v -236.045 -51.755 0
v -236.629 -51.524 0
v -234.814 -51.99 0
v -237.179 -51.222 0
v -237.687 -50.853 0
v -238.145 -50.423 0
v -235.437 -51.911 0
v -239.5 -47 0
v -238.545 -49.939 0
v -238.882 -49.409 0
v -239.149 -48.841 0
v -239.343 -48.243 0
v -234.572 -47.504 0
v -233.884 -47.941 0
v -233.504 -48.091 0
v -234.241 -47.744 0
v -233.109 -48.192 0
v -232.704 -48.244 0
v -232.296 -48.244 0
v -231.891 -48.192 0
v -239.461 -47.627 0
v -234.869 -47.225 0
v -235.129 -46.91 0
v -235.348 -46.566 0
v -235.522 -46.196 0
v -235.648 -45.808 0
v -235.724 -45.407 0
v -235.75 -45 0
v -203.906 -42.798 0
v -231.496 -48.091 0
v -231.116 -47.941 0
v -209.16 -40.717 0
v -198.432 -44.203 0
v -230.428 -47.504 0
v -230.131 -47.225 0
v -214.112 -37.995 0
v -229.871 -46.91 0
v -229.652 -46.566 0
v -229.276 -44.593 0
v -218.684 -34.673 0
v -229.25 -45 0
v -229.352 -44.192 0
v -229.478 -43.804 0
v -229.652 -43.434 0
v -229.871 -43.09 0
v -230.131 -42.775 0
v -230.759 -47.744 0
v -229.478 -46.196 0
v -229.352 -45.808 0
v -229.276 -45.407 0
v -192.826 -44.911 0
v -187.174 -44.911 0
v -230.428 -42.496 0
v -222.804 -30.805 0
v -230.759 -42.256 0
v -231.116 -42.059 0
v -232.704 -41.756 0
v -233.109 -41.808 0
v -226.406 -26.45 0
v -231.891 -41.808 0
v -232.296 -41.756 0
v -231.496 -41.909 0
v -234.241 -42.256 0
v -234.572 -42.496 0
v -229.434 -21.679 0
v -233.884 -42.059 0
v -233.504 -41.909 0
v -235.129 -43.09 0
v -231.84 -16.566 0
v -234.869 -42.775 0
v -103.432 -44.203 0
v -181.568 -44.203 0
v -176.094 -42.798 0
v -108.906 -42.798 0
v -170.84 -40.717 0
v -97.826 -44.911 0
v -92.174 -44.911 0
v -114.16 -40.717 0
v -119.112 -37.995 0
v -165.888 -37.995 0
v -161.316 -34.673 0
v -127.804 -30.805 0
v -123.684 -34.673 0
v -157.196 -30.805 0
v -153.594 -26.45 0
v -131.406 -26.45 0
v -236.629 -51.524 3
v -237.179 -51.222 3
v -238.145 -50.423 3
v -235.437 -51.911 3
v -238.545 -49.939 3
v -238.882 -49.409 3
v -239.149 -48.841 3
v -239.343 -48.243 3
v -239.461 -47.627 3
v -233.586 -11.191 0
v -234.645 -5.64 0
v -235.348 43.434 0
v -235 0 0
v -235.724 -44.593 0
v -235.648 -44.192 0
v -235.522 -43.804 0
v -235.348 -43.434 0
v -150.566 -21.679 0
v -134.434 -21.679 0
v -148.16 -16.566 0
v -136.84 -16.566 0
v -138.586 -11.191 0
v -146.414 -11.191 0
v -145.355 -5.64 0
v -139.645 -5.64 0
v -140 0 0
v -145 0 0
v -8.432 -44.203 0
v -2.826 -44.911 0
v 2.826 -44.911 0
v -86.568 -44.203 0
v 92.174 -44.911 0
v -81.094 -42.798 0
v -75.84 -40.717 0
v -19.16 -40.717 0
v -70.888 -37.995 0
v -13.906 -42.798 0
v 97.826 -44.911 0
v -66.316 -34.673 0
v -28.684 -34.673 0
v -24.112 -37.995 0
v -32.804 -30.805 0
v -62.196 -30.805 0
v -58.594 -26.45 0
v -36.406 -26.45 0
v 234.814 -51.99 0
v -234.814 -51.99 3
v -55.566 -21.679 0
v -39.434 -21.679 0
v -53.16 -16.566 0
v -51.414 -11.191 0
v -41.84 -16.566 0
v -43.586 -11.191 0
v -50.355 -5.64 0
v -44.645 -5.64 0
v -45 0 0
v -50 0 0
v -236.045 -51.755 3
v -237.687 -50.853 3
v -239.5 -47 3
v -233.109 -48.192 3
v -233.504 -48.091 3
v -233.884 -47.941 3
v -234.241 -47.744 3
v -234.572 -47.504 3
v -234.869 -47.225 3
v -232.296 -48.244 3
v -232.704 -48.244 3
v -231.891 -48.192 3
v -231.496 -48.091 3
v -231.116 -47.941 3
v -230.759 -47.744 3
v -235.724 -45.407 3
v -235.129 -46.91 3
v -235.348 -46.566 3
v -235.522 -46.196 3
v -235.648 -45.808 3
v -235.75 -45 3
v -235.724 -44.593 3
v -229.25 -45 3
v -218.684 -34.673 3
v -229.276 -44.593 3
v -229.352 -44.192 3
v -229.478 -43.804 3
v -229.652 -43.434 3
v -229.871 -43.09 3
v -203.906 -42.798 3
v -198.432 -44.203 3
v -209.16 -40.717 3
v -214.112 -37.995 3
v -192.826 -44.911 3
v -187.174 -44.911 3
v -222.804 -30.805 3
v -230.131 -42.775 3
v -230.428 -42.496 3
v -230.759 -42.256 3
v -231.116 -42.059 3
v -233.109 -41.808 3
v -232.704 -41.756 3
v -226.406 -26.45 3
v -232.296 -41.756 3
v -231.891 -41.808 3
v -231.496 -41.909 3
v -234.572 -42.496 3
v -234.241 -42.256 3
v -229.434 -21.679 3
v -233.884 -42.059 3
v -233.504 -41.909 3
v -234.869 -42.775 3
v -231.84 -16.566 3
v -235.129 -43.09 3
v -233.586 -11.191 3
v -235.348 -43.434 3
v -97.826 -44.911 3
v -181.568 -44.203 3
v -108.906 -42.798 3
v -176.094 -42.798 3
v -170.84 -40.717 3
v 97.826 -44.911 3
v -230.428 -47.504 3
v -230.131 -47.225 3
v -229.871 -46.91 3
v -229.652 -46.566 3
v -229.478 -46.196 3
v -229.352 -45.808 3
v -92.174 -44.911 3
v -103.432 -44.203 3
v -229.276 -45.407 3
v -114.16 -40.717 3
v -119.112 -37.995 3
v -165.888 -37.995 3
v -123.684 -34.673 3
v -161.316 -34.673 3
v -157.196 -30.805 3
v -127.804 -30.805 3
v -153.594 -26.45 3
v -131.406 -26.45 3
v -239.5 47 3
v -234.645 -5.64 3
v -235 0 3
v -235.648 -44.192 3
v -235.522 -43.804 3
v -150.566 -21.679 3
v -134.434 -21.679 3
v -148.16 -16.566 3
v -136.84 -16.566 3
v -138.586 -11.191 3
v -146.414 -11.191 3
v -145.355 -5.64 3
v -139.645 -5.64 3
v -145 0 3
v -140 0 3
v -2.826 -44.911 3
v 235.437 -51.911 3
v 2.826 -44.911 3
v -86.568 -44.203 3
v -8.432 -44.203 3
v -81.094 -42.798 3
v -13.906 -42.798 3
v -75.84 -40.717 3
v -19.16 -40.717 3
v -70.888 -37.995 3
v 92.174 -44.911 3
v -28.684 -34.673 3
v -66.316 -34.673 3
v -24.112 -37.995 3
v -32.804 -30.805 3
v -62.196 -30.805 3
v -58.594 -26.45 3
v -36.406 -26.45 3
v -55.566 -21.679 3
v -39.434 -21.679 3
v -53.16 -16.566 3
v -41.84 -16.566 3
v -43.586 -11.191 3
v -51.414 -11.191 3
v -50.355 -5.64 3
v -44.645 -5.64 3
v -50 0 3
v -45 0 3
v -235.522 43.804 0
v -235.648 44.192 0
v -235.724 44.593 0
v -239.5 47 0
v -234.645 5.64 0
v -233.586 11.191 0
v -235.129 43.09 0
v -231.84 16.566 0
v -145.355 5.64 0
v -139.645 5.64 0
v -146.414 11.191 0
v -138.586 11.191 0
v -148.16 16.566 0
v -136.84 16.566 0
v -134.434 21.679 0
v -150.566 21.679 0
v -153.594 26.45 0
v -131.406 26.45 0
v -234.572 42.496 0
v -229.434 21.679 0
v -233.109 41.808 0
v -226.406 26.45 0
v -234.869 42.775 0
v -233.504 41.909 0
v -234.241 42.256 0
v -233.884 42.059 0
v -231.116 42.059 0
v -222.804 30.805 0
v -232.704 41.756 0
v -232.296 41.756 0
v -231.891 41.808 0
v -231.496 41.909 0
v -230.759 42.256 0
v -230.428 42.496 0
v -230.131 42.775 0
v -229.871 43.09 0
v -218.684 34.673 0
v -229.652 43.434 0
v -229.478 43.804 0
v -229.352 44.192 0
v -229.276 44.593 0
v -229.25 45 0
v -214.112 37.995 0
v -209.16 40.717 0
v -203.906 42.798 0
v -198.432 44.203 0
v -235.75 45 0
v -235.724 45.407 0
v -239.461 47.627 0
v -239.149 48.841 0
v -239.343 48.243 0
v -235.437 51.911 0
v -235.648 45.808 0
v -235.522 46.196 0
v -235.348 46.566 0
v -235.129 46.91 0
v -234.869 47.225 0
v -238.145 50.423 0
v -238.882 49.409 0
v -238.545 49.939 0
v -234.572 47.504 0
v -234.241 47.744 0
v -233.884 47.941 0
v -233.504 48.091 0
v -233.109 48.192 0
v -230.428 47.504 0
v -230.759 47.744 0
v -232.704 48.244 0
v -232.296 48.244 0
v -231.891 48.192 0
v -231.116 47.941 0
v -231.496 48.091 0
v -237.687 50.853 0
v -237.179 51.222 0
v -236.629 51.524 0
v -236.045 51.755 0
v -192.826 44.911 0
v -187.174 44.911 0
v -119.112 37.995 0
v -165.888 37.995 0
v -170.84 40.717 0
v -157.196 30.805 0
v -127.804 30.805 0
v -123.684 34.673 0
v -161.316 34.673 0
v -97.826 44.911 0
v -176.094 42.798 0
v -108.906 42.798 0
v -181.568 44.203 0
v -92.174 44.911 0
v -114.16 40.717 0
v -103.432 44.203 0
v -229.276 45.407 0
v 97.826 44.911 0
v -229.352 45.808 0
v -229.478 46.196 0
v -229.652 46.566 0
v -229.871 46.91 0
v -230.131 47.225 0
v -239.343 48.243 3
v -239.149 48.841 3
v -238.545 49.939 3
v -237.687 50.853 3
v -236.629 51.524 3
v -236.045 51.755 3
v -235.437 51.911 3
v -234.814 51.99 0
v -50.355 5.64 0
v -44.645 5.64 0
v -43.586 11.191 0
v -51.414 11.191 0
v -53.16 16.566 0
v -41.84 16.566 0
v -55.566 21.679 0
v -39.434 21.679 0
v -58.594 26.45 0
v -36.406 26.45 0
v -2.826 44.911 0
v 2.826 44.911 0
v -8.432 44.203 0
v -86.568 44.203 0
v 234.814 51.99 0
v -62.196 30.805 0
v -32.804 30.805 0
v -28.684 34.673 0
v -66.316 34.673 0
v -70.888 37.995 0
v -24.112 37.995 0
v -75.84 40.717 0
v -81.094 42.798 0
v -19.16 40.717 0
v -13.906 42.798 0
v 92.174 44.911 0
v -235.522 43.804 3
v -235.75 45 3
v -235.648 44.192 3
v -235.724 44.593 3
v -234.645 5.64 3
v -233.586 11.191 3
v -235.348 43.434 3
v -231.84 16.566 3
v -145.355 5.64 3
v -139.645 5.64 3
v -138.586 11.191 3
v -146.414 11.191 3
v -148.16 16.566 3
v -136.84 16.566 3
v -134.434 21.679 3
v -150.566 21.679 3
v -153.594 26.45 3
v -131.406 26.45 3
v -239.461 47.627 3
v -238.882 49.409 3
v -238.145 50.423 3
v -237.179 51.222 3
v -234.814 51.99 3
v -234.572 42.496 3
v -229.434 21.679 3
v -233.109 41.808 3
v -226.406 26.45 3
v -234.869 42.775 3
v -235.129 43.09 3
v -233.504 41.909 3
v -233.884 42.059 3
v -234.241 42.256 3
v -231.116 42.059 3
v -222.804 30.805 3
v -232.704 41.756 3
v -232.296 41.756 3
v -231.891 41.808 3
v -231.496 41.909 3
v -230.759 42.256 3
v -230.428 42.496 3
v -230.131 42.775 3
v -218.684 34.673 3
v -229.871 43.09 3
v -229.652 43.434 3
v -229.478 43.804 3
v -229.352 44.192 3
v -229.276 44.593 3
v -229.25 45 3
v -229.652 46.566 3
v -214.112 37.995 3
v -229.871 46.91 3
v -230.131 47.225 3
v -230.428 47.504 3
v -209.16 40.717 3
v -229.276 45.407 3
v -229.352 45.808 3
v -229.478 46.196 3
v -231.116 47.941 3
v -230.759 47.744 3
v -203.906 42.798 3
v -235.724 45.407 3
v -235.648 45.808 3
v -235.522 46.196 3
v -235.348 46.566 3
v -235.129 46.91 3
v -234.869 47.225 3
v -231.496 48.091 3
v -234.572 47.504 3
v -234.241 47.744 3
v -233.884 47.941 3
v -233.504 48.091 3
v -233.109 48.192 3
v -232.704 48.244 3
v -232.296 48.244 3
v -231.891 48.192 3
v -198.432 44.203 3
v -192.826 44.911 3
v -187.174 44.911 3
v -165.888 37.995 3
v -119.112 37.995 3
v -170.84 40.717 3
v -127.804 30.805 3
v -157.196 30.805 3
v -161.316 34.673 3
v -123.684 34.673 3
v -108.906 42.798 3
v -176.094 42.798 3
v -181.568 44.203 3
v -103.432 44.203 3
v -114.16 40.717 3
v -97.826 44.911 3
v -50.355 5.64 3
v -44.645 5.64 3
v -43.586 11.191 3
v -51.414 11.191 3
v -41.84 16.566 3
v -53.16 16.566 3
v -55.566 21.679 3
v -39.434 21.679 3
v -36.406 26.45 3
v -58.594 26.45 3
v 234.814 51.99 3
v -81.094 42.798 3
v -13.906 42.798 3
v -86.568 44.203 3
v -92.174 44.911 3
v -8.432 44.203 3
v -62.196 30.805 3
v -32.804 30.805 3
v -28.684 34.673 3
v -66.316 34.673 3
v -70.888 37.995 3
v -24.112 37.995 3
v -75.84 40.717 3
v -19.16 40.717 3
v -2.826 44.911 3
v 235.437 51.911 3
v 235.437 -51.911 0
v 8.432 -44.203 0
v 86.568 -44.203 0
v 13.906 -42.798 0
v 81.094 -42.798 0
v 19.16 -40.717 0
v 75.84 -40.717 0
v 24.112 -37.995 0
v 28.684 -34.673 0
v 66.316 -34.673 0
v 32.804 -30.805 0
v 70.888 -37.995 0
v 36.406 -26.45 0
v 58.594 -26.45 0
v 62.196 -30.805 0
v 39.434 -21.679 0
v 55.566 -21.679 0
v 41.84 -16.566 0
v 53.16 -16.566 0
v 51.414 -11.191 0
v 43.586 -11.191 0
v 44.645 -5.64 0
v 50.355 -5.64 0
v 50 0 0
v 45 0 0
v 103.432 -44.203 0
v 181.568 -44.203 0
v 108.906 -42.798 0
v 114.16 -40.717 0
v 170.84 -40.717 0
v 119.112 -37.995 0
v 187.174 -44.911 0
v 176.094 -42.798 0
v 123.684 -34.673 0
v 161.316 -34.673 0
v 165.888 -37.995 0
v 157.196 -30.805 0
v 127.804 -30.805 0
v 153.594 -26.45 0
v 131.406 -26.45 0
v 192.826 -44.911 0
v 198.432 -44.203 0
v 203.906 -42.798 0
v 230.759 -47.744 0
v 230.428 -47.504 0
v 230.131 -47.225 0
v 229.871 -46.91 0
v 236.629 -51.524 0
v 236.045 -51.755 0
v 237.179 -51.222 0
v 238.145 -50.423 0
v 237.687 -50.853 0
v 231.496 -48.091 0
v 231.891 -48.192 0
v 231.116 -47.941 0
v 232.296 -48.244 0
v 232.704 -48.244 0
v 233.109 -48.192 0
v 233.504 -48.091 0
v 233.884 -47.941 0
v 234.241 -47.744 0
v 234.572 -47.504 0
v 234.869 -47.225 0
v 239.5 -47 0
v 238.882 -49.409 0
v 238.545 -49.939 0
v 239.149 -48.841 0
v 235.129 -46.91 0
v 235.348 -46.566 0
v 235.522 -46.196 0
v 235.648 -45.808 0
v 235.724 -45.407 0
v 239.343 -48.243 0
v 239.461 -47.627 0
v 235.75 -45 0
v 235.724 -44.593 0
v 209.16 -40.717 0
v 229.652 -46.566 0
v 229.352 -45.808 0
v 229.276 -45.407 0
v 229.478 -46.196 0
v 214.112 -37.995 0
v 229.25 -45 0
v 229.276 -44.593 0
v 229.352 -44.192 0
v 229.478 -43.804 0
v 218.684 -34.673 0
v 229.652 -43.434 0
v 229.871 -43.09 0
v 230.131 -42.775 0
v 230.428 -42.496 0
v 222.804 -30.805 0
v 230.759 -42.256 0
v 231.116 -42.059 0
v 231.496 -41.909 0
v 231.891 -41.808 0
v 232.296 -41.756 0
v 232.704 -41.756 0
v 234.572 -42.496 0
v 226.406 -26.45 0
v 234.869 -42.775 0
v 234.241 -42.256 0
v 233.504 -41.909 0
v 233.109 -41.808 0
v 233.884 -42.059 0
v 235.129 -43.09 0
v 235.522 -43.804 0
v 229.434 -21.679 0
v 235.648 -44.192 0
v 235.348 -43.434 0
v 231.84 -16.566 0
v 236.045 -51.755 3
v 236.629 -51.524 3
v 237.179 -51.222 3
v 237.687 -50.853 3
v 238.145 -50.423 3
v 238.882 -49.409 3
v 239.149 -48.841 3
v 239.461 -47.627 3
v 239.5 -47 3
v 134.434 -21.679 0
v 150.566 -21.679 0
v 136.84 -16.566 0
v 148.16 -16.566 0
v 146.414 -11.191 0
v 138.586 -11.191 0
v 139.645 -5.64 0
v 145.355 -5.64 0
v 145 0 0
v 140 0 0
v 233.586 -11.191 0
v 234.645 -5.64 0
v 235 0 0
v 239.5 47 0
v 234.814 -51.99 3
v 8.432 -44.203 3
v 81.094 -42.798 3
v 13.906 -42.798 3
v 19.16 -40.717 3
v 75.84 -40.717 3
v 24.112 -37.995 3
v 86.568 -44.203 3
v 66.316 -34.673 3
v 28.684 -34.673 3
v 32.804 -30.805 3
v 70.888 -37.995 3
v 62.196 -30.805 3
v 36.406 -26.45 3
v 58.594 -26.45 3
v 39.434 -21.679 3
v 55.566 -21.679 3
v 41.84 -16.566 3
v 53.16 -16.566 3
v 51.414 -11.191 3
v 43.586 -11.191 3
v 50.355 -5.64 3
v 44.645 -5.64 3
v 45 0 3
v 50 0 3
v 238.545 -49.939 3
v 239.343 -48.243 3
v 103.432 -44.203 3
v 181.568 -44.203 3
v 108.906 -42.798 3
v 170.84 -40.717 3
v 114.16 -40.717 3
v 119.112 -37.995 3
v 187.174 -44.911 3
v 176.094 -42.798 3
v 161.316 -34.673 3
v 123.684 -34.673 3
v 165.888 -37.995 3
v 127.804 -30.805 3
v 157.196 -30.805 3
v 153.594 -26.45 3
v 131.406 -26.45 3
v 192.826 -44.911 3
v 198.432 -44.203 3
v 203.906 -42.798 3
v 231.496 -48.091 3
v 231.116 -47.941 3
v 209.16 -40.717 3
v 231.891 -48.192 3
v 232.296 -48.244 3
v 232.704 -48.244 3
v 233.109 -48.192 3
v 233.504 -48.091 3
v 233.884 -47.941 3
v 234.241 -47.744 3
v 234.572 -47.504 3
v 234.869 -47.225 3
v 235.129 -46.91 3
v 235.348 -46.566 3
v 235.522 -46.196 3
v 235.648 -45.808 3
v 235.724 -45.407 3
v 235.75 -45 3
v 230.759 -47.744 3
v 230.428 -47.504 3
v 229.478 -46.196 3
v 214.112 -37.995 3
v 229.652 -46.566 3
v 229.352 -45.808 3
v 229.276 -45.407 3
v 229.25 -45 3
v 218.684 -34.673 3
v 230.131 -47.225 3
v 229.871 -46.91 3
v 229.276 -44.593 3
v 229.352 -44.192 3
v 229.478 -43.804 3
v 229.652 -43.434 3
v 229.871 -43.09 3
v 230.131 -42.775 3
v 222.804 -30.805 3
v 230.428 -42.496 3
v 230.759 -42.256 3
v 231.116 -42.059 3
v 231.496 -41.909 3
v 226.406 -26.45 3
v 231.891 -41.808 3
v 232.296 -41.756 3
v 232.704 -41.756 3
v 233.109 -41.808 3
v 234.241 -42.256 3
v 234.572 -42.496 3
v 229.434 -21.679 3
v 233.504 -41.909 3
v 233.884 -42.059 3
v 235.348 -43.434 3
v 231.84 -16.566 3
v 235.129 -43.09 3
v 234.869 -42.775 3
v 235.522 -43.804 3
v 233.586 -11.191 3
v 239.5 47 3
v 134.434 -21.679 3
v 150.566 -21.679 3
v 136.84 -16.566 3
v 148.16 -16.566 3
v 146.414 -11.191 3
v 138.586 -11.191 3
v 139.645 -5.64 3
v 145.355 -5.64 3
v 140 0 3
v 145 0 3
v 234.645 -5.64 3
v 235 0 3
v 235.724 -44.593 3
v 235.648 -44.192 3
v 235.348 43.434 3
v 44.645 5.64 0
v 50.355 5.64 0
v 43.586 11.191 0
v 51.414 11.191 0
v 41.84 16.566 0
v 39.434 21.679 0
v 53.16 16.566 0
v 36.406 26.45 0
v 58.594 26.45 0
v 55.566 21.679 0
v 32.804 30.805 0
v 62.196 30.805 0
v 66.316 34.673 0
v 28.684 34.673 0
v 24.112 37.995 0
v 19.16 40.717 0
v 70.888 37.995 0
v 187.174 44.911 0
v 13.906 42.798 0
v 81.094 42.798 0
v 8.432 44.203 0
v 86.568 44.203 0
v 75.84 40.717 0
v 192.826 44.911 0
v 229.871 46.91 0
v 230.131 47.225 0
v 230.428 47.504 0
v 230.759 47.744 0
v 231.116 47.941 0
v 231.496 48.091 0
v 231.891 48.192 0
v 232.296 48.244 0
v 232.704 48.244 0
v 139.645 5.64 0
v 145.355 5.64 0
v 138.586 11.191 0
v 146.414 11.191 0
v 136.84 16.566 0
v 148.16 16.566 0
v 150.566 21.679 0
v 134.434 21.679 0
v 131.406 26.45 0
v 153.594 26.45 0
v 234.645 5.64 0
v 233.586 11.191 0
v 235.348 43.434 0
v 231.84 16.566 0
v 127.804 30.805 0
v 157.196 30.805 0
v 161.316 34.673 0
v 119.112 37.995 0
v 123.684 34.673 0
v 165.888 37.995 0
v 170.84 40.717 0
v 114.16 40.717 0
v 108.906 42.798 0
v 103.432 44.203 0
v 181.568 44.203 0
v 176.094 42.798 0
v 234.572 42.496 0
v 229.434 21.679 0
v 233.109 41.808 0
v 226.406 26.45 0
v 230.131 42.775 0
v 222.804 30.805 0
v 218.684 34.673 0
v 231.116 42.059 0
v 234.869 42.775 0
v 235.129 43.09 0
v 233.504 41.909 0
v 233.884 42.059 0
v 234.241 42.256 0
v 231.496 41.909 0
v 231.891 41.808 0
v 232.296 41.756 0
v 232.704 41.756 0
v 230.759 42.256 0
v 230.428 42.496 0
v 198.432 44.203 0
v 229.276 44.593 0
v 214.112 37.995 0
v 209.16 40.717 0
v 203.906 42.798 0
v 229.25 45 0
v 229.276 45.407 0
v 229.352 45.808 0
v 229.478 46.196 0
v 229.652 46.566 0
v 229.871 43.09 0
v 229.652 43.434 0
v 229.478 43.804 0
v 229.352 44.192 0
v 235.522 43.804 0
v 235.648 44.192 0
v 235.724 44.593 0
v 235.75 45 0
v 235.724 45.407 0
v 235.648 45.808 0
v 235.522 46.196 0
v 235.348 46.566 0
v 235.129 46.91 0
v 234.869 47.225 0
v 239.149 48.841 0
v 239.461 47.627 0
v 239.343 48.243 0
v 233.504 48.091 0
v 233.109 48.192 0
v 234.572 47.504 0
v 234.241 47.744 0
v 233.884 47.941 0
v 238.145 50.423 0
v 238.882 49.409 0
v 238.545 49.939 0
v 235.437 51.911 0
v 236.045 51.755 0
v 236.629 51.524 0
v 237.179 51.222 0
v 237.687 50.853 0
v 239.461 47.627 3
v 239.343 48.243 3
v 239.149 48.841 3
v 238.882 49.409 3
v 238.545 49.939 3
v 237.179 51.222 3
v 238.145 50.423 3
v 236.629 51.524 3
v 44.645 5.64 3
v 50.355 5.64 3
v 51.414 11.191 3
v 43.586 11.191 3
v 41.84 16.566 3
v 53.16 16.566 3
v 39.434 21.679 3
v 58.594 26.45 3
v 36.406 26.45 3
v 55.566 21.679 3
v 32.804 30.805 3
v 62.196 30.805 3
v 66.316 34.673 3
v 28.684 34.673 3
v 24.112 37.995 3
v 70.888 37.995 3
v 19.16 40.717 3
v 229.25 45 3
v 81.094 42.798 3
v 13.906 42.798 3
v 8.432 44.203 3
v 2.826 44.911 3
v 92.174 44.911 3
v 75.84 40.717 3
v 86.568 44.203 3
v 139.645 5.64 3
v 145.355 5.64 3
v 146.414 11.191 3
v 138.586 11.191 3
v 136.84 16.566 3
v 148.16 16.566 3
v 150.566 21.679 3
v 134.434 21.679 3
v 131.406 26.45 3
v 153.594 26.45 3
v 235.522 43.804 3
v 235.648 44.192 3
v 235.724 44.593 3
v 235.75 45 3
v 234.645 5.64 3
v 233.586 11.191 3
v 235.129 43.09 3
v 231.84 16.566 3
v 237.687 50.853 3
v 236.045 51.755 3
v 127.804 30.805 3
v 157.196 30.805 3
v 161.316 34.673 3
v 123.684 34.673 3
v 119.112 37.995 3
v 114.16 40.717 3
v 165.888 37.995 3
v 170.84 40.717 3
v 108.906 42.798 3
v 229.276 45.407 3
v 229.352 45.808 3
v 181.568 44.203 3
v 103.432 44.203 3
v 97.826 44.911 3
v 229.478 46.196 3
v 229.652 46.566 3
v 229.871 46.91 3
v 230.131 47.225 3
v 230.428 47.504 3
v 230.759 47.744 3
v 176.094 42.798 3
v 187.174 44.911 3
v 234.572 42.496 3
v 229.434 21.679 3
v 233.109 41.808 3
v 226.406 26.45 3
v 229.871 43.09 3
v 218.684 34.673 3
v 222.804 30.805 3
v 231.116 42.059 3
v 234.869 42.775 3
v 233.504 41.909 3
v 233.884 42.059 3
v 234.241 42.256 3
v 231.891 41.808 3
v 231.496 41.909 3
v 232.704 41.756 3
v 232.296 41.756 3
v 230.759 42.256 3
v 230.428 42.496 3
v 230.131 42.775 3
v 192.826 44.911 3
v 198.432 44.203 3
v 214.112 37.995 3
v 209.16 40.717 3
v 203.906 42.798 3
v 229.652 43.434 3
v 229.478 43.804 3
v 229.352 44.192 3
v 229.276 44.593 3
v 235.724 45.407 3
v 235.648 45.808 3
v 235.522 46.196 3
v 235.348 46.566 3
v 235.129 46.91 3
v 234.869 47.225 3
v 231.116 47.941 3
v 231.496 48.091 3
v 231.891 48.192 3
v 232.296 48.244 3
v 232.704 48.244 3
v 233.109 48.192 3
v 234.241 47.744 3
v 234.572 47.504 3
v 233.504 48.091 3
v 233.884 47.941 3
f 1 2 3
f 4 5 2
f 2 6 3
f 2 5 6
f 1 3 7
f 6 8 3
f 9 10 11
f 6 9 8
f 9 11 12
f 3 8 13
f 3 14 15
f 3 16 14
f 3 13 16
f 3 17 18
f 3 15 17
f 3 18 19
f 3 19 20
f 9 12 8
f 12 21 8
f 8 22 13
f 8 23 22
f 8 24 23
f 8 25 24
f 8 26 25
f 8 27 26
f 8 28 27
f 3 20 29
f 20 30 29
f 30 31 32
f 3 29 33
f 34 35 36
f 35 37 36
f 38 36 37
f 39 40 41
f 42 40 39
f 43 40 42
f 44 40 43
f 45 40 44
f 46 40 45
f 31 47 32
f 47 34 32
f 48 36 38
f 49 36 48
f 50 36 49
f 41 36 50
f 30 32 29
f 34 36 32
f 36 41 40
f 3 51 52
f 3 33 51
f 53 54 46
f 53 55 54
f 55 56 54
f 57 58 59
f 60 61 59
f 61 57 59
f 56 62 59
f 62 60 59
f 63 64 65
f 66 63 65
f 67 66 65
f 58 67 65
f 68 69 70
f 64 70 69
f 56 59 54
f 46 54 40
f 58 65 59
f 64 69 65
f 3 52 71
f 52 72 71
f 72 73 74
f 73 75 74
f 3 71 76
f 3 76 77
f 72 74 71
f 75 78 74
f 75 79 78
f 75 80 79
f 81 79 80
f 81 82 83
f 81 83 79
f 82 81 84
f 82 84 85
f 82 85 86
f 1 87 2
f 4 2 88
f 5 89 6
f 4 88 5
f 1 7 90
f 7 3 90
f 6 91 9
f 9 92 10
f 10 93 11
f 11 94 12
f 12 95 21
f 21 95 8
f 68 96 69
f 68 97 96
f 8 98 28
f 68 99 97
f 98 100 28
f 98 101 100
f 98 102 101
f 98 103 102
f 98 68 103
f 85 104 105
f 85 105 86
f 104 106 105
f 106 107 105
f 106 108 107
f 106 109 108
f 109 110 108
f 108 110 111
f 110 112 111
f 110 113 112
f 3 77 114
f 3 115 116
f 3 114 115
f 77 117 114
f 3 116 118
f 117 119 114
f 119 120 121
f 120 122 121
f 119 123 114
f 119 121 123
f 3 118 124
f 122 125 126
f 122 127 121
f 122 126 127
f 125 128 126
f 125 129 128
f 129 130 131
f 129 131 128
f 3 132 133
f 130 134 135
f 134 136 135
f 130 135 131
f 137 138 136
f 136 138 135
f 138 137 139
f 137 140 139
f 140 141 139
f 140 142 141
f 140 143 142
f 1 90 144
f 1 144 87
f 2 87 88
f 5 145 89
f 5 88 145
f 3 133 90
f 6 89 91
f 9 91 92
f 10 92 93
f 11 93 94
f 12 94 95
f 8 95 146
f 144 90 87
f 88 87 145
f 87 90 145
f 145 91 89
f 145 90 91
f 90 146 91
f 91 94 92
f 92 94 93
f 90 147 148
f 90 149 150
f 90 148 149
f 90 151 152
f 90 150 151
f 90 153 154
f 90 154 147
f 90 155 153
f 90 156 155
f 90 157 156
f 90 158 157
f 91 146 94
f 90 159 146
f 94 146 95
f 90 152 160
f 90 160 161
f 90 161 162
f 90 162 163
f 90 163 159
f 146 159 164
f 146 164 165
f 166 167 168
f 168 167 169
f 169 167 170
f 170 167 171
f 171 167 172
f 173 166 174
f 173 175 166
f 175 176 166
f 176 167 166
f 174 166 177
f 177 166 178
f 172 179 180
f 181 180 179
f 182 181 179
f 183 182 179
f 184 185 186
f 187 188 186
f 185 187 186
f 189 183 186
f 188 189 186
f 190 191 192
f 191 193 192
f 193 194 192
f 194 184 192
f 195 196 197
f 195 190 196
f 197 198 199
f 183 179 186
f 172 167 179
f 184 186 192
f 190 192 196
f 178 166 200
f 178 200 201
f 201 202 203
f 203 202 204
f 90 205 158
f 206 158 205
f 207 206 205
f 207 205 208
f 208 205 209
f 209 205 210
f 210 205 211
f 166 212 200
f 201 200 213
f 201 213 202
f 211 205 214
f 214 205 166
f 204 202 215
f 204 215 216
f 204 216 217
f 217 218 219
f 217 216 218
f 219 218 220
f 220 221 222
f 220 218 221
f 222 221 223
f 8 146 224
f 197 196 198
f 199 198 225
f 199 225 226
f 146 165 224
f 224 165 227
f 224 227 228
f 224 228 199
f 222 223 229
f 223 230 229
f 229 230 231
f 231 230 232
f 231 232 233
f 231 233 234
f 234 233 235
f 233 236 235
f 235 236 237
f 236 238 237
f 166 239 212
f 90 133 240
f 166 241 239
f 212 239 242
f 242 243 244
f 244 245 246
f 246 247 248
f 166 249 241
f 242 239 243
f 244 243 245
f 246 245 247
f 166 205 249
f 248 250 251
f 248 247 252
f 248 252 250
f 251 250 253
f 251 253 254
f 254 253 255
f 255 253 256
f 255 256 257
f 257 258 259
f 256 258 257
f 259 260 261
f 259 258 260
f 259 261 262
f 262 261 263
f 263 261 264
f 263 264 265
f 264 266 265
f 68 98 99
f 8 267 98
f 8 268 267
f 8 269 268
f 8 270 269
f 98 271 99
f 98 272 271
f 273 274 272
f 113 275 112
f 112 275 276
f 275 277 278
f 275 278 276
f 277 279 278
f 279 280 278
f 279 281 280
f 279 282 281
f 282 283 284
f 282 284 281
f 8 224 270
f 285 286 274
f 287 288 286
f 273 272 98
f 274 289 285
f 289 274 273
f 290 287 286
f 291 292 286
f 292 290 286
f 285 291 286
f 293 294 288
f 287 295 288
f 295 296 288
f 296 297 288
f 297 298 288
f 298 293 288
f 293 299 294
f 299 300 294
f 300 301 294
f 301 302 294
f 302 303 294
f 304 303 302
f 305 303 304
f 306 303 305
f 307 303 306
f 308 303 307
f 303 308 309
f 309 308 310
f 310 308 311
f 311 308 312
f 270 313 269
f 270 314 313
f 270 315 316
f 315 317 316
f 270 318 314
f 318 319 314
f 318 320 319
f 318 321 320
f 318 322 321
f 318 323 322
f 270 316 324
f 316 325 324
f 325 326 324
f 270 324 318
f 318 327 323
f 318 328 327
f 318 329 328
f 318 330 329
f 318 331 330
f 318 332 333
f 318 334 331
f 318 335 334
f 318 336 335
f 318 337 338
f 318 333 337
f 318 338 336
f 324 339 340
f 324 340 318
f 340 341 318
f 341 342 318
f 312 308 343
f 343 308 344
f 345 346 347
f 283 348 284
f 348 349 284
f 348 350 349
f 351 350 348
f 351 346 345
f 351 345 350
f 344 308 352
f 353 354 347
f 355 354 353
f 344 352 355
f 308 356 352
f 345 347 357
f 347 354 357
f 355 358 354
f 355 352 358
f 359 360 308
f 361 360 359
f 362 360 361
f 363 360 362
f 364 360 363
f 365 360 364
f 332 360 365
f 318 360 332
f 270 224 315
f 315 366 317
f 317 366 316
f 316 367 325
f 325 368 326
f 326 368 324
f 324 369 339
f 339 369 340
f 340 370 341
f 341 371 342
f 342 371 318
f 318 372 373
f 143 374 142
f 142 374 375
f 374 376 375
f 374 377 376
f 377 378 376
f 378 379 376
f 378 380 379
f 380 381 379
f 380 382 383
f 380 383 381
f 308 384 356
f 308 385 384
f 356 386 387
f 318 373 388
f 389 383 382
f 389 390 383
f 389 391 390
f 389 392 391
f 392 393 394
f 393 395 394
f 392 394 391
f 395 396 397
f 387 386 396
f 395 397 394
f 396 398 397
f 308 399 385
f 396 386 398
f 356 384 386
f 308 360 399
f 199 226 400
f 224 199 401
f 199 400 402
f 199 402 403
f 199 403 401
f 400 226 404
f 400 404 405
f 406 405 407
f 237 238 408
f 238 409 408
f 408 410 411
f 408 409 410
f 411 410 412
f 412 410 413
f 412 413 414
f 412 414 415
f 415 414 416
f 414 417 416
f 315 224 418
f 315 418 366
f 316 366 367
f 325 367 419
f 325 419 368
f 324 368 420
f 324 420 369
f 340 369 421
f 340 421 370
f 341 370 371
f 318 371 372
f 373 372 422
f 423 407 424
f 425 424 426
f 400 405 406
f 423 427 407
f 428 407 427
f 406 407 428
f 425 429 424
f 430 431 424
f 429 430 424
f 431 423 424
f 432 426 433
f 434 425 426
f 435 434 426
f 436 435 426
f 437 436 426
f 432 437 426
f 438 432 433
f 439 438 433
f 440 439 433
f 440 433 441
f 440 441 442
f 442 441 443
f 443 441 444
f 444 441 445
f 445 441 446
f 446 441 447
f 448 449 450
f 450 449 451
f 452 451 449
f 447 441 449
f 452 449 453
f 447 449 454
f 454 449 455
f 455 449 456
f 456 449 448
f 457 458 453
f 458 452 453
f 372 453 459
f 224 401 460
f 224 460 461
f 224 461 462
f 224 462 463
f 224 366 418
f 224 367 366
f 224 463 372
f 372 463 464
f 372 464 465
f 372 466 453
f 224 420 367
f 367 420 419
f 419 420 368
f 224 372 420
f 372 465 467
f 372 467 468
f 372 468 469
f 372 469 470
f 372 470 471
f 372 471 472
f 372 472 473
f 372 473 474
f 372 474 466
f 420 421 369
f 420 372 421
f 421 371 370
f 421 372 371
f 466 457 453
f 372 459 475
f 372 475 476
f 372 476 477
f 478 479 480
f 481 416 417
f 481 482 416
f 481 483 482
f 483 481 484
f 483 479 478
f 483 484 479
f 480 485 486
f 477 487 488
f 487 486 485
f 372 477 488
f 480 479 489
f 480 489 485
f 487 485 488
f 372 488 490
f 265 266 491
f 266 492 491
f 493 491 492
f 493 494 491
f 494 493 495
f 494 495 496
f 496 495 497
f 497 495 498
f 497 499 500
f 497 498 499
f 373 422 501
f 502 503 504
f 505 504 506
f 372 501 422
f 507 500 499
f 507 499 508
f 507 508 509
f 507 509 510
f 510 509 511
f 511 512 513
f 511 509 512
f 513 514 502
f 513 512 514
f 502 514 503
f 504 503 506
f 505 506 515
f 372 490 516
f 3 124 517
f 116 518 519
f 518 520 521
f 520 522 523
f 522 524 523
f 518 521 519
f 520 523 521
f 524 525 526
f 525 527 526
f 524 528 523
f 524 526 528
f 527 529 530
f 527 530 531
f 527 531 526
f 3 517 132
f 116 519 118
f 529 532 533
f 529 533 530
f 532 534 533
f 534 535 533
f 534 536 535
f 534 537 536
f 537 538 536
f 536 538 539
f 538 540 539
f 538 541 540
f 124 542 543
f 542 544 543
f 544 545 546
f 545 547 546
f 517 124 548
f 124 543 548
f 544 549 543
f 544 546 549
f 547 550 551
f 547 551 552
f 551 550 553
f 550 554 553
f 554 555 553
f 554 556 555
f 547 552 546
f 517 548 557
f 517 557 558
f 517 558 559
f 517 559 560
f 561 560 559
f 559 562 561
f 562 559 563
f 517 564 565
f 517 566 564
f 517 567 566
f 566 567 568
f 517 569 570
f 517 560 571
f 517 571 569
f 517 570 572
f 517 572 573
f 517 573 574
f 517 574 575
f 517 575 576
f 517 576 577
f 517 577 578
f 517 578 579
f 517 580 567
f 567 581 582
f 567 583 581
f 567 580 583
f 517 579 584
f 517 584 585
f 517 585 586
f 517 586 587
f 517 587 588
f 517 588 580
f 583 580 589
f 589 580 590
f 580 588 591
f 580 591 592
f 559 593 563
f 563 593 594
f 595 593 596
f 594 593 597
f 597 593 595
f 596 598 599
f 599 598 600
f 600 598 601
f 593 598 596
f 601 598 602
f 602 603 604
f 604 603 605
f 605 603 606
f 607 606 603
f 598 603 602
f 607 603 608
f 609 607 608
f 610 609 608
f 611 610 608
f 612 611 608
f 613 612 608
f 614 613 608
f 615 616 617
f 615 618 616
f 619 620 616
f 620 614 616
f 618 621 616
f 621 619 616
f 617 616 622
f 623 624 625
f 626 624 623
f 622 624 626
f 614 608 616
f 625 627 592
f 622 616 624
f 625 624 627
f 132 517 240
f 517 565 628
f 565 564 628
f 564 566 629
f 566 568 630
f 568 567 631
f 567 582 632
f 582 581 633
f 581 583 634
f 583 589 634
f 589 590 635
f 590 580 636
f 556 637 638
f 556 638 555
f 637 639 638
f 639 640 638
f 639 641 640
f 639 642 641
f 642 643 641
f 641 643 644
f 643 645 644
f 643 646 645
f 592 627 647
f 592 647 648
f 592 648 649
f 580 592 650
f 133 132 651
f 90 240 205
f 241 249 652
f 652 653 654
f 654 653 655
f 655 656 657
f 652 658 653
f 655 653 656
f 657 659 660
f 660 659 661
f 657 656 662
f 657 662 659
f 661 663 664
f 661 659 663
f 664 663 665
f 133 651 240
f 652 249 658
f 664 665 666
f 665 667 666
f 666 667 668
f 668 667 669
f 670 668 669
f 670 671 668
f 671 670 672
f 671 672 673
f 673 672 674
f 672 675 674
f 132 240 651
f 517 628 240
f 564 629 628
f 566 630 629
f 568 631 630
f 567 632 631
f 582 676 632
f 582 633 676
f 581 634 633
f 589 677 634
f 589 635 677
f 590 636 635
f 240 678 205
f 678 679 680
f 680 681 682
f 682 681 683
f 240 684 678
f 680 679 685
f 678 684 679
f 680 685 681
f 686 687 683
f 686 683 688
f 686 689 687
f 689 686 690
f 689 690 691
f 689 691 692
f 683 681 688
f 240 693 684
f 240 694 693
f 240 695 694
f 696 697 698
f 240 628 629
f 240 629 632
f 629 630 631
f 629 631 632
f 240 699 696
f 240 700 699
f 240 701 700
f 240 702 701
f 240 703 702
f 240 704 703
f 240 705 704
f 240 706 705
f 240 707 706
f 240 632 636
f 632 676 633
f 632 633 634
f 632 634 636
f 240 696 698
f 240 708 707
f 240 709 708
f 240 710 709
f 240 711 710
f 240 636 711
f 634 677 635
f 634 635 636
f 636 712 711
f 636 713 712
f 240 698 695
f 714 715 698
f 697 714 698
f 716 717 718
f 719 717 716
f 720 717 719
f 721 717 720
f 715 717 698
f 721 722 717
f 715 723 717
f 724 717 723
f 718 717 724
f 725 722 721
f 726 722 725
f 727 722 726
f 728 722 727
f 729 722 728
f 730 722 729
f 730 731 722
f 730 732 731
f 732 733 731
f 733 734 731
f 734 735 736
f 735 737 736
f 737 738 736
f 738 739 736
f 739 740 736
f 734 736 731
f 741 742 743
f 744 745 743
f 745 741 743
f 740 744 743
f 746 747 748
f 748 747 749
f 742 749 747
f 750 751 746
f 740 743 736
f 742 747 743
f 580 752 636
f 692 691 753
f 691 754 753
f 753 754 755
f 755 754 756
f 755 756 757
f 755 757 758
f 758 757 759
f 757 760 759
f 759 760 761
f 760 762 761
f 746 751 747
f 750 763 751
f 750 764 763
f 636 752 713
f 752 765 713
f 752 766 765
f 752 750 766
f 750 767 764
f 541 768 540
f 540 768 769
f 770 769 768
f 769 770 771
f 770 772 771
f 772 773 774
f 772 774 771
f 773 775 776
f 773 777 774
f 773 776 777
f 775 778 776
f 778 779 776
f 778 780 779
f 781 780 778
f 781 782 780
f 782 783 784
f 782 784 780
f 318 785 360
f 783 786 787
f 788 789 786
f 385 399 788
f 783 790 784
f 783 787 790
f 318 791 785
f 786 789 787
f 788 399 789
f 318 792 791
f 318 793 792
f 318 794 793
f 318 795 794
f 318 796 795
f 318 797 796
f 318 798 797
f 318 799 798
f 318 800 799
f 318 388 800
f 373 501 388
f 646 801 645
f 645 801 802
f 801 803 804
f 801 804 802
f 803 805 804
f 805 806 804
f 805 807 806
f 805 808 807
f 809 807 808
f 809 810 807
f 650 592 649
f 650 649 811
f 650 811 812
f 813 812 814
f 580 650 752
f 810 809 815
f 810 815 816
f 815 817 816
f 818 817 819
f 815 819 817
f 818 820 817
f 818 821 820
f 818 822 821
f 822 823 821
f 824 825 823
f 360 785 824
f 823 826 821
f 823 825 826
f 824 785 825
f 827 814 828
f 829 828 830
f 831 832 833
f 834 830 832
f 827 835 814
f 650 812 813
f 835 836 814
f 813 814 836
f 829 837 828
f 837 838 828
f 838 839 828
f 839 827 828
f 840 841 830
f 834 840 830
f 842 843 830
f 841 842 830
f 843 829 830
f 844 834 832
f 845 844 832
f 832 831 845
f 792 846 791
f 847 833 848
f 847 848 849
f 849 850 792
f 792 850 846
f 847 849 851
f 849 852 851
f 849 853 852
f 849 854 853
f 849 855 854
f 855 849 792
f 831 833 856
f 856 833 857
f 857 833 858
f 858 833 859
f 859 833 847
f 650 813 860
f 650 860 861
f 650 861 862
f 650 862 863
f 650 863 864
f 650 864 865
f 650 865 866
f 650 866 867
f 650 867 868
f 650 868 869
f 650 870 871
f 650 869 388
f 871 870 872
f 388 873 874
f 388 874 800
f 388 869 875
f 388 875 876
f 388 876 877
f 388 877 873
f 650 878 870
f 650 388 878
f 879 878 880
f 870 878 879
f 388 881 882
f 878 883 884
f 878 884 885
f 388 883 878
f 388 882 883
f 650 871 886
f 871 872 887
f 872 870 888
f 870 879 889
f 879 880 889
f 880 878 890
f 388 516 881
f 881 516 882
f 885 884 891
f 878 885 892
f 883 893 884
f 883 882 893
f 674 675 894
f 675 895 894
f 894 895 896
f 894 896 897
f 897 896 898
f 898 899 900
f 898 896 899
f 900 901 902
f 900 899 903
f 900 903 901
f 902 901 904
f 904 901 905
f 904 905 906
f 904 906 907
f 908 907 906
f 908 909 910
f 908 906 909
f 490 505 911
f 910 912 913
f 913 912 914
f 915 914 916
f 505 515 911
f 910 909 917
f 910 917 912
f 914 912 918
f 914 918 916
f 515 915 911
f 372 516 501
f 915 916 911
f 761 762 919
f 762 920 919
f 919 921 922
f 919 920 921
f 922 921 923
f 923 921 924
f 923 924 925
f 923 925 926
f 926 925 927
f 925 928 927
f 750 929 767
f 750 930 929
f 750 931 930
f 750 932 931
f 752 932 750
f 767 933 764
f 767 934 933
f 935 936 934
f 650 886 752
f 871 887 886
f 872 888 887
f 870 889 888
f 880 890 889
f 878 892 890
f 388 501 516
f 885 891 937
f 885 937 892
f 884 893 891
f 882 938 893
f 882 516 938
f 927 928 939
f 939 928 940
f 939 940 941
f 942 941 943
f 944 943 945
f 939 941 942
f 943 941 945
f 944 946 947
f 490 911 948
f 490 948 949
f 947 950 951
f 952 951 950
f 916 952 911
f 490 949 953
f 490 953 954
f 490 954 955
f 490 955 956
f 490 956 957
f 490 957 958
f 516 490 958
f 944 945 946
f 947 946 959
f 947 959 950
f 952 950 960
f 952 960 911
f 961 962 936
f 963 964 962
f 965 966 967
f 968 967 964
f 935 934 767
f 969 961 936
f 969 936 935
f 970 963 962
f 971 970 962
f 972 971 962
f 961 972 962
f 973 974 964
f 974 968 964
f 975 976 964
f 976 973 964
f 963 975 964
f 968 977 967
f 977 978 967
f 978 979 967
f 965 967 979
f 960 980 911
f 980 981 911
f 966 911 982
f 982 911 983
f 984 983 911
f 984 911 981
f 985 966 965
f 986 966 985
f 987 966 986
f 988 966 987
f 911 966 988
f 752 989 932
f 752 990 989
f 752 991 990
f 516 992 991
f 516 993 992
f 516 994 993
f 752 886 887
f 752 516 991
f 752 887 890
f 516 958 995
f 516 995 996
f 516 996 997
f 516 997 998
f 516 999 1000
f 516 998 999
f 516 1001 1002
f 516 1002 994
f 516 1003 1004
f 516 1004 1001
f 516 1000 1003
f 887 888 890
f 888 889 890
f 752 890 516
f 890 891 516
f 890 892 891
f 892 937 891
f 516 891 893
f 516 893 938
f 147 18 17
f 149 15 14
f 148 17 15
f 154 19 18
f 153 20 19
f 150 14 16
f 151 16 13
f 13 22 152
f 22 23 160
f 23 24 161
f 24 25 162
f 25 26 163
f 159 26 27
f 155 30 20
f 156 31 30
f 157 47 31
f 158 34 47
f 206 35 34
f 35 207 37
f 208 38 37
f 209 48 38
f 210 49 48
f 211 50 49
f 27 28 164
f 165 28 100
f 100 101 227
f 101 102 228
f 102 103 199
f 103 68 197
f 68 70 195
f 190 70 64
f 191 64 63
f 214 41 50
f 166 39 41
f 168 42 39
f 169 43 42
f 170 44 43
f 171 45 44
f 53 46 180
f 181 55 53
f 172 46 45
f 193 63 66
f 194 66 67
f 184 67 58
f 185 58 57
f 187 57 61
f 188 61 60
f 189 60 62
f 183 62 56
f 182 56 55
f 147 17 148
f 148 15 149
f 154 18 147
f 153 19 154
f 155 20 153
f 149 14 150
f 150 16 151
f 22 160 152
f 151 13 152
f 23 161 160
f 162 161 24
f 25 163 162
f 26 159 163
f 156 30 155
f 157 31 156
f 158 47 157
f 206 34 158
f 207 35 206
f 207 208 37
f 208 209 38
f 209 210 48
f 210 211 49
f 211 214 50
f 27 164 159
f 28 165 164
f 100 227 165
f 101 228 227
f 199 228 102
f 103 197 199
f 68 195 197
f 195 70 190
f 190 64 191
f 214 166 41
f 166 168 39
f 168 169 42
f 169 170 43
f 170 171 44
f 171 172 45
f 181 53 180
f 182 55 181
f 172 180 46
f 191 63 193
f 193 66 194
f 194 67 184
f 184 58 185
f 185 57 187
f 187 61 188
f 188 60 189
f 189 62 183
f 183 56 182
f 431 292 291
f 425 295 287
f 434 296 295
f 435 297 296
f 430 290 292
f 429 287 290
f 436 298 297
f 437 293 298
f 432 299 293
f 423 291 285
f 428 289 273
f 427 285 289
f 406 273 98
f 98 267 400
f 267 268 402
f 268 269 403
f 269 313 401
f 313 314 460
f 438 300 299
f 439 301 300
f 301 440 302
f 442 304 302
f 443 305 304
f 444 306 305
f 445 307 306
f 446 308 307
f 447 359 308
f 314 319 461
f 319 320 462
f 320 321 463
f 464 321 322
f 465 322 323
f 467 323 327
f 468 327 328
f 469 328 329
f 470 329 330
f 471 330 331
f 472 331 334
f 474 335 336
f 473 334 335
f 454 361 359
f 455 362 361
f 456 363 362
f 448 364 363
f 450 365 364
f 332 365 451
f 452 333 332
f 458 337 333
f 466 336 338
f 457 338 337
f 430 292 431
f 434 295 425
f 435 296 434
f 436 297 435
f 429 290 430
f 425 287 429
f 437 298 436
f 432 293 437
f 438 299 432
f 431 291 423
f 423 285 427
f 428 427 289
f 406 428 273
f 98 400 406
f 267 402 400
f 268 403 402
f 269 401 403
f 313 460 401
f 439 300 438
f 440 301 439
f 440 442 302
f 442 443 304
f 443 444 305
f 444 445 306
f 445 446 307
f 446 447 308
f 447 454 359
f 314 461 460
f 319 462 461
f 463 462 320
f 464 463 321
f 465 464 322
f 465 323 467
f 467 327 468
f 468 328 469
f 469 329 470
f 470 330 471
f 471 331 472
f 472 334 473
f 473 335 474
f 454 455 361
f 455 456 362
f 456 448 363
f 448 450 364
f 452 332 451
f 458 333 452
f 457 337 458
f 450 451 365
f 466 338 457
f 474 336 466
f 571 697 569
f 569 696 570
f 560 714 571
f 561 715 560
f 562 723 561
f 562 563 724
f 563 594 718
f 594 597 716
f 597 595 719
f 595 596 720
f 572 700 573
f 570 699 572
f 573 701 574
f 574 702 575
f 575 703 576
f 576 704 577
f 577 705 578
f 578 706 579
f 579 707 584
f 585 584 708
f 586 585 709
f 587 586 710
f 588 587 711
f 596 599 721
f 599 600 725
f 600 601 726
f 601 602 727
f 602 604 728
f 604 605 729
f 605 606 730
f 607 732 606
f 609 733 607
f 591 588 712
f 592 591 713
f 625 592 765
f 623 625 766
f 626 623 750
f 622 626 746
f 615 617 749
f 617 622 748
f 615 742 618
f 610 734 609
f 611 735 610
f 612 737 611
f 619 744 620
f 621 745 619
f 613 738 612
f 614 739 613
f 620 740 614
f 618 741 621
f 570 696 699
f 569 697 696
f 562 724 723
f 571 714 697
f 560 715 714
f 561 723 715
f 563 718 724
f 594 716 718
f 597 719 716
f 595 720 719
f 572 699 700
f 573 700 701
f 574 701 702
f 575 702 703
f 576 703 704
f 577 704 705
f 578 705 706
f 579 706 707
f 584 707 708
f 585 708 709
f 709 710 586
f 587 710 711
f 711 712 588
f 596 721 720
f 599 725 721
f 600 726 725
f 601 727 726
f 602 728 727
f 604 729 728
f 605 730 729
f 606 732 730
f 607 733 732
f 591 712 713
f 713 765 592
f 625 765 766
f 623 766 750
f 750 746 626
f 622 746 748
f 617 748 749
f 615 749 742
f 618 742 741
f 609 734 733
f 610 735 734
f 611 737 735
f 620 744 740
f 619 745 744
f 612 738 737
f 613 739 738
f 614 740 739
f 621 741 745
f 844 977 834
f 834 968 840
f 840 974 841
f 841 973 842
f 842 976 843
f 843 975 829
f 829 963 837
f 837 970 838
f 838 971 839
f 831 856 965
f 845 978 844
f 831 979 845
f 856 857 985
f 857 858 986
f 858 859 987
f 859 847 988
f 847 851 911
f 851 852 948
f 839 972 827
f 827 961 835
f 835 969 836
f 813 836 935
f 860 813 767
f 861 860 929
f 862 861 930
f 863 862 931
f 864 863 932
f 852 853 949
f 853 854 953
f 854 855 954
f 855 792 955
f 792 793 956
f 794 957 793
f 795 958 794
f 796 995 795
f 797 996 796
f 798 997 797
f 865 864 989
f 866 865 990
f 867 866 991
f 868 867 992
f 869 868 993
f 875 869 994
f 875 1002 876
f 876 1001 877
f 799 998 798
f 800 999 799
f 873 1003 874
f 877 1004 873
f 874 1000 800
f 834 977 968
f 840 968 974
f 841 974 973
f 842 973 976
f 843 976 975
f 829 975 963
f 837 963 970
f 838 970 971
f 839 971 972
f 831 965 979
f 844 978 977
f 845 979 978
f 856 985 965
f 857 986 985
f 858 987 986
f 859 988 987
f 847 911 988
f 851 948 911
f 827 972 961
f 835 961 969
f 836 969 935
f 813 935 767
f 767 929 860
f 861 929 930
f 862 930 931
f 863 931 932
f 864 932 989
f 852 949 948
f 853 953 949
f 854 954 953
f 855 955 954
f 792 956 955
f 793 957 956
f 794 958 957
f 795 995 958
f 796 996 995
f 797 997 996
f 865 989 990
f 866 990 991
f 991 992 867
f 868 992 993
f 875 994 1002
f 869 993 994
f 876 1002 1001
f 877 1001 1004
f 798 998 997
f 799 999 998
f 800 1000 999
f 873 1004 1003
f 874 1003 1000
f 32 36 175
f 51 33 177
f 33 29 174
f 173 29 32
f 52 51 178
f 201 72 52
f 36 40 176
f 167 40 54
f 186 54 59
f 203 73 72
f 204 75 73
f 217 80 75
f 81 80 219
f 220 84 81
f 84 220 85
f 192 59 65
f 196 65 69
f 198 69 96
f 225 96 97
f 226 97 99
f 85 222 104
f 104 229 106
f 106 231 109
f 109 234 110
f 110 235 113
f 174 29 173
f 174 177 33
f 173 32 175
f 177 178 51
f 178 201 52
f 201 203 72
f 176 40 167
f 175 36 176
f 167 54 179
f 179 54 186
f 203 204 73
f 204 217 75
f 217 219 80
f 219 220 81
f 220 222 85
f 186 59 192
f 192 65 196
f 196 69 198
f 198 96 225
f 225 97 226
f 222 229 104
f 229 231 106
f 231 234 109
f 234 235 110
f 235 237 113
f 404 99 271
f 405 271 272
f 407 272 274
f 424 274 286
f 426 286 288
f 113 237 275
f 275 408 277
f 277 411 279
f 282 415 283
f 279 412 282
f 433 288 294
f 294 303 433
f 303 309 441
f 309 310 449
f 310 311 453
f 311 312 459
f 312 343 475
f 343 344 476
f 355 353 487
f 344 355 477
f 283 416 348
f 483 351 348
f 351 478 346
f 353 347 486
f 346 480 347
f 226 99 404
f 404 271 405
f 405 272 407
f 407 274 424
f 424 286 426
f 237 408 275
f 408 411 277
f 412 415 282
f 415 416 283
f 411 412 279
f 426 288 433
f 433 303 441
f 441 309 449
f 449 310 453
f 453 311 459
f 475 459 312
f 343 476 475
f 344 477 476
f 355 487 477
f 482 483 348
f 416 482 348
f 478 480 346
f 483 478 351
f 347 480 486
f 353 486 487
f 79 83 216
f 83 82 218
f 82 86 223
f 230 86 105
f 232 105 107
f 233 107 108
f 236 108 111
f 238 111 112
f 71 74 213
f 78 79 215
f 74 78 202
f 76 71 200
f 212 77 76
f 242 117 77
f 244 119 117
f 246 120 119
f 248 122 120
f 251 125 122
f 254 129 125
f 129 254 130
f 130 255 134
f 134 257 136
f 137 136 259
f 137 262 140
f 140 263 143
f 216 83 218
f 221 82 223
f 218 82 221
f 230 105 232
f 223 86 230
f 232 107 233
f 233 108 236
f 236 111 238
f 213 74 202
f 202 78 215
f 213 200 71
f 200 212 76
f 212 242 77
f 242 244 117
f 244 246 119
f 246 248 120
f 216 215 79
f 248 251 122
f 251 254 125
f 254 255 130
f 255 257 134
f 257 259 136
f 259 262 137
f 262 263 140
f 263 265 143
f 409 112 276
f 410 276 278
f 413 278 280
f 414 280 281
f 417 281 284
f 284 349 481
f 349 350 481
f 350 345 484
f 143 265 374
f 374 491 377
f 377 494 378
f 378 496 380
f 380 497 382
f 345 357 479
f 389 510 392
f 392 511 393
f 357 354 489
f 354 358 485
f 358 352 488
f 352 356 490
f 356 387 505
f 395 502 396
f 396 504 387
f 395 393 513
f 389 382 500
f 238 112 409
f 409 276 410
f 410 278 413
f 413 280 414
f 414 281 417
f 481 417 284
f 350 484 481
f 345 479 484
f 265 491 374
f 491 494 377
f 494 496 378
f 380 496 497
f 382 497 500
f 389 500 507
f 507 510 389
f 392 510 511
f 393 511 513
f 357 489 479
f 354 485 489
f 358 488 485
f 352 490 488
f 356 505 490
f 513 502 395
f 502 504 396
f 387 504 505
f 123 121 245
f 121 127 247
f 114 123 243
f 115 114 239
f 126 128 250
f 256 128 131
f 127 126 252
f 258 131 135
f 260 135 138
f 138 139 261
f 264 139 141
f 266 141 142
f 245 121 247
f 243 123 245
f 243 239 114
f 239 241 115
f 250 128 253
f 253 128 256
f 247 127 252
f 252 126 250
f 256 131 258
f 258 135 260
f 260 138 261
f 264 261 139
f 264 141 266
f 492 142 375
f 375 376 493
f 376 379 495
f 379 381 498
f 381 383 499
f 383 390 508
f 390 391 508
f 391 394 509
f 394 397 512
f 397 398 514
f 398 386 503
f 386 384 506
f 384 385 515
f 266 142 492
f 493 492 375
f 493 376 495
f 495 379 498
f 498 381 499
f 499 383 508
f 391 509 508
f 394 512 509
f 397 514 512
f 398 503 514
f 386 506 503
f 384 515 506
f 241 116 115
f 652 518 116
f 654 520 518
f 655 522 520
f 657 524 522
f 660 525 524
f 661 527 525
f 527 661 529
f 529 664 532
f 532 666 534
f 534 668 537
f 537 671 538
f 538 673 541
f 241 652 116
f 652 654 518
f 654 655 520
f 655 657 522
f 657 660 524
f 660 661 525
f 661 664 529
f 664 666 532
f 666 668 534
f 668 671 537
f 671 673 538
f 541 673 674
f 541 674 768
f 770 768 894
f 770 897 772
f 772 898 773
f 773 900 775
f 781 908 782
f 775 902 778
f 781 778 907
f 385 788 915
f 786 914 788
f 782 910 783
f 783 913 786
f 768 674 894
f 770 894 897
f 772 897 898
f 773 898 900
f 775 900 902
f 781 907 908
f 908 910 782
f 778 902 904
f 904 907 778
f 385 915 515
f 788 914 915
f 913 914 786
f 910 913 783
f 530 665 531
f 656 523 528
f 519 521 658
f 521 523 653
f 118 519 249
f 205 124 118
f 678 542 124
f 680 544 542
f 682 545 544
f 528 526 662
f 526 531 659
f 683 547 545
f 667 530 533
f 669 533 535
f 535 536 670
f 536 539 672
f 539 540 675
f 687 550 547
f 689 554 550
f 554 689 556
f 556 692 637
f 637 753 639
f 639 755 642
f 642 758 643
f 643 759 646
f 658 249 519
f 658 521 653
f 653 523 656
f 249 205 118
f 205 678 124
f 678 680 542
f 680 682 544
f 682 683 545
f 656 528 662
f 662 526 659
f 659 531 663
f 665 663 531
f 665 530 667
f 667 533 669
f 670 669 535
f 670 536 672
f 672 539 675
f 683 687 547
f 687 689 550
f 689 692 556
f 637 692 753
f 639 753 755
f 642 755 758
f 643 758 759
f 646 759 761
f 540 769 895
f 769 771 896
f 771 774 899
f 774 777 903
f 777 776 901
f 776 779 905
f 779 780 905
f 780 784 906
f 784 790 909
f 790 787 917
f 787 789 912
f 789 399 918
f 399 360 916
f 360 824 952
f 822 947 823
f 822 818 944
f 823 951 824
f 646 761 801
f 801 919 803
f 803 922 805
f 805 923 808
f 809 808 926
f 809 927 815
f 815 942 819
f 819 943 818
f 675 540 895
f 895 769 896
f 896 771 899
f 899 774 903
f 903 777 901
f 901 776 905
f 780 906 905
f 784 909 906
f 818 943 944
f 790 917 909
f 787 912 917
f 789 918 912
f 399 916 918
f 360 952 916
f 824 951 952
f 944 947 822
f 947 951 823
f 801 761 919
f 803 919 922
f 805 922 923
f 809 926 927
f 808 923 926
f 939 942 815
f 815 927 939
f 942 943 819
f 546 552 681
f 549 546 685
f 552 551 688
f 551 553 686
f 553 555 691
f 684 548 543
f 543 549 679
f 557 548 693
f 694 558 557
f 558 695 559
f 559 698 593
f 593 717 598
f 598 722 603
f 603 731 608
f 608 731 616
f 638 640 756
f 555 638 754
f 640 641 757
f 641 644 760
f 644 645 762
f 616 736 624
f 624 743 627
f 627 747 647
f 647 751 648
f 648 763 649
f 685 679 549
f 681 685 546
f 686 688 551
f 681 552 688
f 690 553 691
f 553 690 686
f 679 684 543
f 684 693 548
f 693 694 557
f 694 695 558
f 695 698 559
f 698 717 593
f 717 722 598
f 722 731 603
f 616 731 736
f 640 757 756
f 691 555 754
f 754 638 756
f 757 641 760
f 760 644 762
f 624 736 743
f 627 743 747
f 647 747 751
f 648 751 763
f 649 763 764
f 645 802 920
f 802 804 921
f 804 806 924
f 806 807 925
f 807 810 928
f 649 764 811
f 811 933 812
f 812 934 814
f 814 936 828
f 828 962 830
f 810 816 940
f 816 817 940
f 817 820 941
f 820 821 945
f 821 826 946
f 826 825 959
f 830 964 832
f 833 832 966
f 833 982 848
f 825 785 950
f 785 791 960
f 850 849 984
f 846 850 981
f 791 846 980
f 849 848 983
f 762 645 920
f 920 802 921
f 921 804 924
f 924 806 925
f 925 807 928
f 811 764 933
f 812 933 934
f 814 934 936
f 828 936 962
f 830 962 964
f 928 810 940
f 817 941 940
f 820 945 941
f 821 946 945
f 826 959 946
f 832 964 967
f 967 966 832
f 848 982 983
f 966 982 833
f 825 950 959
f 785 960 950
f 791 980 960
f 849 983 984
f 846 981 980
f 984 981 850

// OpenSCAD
$fn = 50;

difference() {
	union() {
		hull() {
			translate(v = [-234.5, 47.0, 0]) {
				cylinder(h = 3, r = 5);
			}
			translate(v = [234.5, 47.0, 0]) {
				cylinder(h = 3, r = 5);
			}
			translate(v = [-234.5, -47.0, 0]) {
				cylinder(h = 3, r = 5);
			}
			translate(v = [234.5, -47.0, 0]) {
				cylinder(h = 3, r = 5);
			}
		}
	}
	union() {
		translate(v = [-232.5, -45.0, -100.0]) {
			cylinder(h = 200, r = 3.25);
		}
		translate(v = [-232.5, 45.0, -100.0]) {
			cylinder(h = 200, r = 3.25);
		}
		translate(v = [232.5, -45.0, -100.0]) {
			cylinder(h = 200, r = 3.25);
		}
		translate(v = [232.5, 45.0, -100.0]) {
			cylinder(h = 200, r = 3.25);
		}
		translate(v = [-232.5, -45.0, -100.0]) {
			cylinder(h = 200, r = 1.8);
		}
		translate(v = [-232.5, 45.0, -100.0]) {
			cylinder(h = 200, r = 1.8);
		}
		translate(v = [232.5, -45.0, -100.0]) {
			cylinder(h = 200, r = 1.8);
		}
		translate(v = [232.5, 45.0, -100.0]) {
			cylinder(h = 200, r = 1.8);
		}
		translate(v = [-190.0, 0, 0.0]) {
			cylinder(h = 3, r = 45.0);
		}
		translate(v = [-95.0, 0, 0.0]) {
			cylinder(h = 3, r = 45.0);
		}
		cylinder(h = 3, r = 45.0);
		translate(v = [95.0, 0, 0.0]) {
			cylinder(h = 3, r = 45.0);
		}
		translate(v = [190.0, 0, 0.0]) {
			cylinder(h = 3, r = 45.0);
		}
	}
}
